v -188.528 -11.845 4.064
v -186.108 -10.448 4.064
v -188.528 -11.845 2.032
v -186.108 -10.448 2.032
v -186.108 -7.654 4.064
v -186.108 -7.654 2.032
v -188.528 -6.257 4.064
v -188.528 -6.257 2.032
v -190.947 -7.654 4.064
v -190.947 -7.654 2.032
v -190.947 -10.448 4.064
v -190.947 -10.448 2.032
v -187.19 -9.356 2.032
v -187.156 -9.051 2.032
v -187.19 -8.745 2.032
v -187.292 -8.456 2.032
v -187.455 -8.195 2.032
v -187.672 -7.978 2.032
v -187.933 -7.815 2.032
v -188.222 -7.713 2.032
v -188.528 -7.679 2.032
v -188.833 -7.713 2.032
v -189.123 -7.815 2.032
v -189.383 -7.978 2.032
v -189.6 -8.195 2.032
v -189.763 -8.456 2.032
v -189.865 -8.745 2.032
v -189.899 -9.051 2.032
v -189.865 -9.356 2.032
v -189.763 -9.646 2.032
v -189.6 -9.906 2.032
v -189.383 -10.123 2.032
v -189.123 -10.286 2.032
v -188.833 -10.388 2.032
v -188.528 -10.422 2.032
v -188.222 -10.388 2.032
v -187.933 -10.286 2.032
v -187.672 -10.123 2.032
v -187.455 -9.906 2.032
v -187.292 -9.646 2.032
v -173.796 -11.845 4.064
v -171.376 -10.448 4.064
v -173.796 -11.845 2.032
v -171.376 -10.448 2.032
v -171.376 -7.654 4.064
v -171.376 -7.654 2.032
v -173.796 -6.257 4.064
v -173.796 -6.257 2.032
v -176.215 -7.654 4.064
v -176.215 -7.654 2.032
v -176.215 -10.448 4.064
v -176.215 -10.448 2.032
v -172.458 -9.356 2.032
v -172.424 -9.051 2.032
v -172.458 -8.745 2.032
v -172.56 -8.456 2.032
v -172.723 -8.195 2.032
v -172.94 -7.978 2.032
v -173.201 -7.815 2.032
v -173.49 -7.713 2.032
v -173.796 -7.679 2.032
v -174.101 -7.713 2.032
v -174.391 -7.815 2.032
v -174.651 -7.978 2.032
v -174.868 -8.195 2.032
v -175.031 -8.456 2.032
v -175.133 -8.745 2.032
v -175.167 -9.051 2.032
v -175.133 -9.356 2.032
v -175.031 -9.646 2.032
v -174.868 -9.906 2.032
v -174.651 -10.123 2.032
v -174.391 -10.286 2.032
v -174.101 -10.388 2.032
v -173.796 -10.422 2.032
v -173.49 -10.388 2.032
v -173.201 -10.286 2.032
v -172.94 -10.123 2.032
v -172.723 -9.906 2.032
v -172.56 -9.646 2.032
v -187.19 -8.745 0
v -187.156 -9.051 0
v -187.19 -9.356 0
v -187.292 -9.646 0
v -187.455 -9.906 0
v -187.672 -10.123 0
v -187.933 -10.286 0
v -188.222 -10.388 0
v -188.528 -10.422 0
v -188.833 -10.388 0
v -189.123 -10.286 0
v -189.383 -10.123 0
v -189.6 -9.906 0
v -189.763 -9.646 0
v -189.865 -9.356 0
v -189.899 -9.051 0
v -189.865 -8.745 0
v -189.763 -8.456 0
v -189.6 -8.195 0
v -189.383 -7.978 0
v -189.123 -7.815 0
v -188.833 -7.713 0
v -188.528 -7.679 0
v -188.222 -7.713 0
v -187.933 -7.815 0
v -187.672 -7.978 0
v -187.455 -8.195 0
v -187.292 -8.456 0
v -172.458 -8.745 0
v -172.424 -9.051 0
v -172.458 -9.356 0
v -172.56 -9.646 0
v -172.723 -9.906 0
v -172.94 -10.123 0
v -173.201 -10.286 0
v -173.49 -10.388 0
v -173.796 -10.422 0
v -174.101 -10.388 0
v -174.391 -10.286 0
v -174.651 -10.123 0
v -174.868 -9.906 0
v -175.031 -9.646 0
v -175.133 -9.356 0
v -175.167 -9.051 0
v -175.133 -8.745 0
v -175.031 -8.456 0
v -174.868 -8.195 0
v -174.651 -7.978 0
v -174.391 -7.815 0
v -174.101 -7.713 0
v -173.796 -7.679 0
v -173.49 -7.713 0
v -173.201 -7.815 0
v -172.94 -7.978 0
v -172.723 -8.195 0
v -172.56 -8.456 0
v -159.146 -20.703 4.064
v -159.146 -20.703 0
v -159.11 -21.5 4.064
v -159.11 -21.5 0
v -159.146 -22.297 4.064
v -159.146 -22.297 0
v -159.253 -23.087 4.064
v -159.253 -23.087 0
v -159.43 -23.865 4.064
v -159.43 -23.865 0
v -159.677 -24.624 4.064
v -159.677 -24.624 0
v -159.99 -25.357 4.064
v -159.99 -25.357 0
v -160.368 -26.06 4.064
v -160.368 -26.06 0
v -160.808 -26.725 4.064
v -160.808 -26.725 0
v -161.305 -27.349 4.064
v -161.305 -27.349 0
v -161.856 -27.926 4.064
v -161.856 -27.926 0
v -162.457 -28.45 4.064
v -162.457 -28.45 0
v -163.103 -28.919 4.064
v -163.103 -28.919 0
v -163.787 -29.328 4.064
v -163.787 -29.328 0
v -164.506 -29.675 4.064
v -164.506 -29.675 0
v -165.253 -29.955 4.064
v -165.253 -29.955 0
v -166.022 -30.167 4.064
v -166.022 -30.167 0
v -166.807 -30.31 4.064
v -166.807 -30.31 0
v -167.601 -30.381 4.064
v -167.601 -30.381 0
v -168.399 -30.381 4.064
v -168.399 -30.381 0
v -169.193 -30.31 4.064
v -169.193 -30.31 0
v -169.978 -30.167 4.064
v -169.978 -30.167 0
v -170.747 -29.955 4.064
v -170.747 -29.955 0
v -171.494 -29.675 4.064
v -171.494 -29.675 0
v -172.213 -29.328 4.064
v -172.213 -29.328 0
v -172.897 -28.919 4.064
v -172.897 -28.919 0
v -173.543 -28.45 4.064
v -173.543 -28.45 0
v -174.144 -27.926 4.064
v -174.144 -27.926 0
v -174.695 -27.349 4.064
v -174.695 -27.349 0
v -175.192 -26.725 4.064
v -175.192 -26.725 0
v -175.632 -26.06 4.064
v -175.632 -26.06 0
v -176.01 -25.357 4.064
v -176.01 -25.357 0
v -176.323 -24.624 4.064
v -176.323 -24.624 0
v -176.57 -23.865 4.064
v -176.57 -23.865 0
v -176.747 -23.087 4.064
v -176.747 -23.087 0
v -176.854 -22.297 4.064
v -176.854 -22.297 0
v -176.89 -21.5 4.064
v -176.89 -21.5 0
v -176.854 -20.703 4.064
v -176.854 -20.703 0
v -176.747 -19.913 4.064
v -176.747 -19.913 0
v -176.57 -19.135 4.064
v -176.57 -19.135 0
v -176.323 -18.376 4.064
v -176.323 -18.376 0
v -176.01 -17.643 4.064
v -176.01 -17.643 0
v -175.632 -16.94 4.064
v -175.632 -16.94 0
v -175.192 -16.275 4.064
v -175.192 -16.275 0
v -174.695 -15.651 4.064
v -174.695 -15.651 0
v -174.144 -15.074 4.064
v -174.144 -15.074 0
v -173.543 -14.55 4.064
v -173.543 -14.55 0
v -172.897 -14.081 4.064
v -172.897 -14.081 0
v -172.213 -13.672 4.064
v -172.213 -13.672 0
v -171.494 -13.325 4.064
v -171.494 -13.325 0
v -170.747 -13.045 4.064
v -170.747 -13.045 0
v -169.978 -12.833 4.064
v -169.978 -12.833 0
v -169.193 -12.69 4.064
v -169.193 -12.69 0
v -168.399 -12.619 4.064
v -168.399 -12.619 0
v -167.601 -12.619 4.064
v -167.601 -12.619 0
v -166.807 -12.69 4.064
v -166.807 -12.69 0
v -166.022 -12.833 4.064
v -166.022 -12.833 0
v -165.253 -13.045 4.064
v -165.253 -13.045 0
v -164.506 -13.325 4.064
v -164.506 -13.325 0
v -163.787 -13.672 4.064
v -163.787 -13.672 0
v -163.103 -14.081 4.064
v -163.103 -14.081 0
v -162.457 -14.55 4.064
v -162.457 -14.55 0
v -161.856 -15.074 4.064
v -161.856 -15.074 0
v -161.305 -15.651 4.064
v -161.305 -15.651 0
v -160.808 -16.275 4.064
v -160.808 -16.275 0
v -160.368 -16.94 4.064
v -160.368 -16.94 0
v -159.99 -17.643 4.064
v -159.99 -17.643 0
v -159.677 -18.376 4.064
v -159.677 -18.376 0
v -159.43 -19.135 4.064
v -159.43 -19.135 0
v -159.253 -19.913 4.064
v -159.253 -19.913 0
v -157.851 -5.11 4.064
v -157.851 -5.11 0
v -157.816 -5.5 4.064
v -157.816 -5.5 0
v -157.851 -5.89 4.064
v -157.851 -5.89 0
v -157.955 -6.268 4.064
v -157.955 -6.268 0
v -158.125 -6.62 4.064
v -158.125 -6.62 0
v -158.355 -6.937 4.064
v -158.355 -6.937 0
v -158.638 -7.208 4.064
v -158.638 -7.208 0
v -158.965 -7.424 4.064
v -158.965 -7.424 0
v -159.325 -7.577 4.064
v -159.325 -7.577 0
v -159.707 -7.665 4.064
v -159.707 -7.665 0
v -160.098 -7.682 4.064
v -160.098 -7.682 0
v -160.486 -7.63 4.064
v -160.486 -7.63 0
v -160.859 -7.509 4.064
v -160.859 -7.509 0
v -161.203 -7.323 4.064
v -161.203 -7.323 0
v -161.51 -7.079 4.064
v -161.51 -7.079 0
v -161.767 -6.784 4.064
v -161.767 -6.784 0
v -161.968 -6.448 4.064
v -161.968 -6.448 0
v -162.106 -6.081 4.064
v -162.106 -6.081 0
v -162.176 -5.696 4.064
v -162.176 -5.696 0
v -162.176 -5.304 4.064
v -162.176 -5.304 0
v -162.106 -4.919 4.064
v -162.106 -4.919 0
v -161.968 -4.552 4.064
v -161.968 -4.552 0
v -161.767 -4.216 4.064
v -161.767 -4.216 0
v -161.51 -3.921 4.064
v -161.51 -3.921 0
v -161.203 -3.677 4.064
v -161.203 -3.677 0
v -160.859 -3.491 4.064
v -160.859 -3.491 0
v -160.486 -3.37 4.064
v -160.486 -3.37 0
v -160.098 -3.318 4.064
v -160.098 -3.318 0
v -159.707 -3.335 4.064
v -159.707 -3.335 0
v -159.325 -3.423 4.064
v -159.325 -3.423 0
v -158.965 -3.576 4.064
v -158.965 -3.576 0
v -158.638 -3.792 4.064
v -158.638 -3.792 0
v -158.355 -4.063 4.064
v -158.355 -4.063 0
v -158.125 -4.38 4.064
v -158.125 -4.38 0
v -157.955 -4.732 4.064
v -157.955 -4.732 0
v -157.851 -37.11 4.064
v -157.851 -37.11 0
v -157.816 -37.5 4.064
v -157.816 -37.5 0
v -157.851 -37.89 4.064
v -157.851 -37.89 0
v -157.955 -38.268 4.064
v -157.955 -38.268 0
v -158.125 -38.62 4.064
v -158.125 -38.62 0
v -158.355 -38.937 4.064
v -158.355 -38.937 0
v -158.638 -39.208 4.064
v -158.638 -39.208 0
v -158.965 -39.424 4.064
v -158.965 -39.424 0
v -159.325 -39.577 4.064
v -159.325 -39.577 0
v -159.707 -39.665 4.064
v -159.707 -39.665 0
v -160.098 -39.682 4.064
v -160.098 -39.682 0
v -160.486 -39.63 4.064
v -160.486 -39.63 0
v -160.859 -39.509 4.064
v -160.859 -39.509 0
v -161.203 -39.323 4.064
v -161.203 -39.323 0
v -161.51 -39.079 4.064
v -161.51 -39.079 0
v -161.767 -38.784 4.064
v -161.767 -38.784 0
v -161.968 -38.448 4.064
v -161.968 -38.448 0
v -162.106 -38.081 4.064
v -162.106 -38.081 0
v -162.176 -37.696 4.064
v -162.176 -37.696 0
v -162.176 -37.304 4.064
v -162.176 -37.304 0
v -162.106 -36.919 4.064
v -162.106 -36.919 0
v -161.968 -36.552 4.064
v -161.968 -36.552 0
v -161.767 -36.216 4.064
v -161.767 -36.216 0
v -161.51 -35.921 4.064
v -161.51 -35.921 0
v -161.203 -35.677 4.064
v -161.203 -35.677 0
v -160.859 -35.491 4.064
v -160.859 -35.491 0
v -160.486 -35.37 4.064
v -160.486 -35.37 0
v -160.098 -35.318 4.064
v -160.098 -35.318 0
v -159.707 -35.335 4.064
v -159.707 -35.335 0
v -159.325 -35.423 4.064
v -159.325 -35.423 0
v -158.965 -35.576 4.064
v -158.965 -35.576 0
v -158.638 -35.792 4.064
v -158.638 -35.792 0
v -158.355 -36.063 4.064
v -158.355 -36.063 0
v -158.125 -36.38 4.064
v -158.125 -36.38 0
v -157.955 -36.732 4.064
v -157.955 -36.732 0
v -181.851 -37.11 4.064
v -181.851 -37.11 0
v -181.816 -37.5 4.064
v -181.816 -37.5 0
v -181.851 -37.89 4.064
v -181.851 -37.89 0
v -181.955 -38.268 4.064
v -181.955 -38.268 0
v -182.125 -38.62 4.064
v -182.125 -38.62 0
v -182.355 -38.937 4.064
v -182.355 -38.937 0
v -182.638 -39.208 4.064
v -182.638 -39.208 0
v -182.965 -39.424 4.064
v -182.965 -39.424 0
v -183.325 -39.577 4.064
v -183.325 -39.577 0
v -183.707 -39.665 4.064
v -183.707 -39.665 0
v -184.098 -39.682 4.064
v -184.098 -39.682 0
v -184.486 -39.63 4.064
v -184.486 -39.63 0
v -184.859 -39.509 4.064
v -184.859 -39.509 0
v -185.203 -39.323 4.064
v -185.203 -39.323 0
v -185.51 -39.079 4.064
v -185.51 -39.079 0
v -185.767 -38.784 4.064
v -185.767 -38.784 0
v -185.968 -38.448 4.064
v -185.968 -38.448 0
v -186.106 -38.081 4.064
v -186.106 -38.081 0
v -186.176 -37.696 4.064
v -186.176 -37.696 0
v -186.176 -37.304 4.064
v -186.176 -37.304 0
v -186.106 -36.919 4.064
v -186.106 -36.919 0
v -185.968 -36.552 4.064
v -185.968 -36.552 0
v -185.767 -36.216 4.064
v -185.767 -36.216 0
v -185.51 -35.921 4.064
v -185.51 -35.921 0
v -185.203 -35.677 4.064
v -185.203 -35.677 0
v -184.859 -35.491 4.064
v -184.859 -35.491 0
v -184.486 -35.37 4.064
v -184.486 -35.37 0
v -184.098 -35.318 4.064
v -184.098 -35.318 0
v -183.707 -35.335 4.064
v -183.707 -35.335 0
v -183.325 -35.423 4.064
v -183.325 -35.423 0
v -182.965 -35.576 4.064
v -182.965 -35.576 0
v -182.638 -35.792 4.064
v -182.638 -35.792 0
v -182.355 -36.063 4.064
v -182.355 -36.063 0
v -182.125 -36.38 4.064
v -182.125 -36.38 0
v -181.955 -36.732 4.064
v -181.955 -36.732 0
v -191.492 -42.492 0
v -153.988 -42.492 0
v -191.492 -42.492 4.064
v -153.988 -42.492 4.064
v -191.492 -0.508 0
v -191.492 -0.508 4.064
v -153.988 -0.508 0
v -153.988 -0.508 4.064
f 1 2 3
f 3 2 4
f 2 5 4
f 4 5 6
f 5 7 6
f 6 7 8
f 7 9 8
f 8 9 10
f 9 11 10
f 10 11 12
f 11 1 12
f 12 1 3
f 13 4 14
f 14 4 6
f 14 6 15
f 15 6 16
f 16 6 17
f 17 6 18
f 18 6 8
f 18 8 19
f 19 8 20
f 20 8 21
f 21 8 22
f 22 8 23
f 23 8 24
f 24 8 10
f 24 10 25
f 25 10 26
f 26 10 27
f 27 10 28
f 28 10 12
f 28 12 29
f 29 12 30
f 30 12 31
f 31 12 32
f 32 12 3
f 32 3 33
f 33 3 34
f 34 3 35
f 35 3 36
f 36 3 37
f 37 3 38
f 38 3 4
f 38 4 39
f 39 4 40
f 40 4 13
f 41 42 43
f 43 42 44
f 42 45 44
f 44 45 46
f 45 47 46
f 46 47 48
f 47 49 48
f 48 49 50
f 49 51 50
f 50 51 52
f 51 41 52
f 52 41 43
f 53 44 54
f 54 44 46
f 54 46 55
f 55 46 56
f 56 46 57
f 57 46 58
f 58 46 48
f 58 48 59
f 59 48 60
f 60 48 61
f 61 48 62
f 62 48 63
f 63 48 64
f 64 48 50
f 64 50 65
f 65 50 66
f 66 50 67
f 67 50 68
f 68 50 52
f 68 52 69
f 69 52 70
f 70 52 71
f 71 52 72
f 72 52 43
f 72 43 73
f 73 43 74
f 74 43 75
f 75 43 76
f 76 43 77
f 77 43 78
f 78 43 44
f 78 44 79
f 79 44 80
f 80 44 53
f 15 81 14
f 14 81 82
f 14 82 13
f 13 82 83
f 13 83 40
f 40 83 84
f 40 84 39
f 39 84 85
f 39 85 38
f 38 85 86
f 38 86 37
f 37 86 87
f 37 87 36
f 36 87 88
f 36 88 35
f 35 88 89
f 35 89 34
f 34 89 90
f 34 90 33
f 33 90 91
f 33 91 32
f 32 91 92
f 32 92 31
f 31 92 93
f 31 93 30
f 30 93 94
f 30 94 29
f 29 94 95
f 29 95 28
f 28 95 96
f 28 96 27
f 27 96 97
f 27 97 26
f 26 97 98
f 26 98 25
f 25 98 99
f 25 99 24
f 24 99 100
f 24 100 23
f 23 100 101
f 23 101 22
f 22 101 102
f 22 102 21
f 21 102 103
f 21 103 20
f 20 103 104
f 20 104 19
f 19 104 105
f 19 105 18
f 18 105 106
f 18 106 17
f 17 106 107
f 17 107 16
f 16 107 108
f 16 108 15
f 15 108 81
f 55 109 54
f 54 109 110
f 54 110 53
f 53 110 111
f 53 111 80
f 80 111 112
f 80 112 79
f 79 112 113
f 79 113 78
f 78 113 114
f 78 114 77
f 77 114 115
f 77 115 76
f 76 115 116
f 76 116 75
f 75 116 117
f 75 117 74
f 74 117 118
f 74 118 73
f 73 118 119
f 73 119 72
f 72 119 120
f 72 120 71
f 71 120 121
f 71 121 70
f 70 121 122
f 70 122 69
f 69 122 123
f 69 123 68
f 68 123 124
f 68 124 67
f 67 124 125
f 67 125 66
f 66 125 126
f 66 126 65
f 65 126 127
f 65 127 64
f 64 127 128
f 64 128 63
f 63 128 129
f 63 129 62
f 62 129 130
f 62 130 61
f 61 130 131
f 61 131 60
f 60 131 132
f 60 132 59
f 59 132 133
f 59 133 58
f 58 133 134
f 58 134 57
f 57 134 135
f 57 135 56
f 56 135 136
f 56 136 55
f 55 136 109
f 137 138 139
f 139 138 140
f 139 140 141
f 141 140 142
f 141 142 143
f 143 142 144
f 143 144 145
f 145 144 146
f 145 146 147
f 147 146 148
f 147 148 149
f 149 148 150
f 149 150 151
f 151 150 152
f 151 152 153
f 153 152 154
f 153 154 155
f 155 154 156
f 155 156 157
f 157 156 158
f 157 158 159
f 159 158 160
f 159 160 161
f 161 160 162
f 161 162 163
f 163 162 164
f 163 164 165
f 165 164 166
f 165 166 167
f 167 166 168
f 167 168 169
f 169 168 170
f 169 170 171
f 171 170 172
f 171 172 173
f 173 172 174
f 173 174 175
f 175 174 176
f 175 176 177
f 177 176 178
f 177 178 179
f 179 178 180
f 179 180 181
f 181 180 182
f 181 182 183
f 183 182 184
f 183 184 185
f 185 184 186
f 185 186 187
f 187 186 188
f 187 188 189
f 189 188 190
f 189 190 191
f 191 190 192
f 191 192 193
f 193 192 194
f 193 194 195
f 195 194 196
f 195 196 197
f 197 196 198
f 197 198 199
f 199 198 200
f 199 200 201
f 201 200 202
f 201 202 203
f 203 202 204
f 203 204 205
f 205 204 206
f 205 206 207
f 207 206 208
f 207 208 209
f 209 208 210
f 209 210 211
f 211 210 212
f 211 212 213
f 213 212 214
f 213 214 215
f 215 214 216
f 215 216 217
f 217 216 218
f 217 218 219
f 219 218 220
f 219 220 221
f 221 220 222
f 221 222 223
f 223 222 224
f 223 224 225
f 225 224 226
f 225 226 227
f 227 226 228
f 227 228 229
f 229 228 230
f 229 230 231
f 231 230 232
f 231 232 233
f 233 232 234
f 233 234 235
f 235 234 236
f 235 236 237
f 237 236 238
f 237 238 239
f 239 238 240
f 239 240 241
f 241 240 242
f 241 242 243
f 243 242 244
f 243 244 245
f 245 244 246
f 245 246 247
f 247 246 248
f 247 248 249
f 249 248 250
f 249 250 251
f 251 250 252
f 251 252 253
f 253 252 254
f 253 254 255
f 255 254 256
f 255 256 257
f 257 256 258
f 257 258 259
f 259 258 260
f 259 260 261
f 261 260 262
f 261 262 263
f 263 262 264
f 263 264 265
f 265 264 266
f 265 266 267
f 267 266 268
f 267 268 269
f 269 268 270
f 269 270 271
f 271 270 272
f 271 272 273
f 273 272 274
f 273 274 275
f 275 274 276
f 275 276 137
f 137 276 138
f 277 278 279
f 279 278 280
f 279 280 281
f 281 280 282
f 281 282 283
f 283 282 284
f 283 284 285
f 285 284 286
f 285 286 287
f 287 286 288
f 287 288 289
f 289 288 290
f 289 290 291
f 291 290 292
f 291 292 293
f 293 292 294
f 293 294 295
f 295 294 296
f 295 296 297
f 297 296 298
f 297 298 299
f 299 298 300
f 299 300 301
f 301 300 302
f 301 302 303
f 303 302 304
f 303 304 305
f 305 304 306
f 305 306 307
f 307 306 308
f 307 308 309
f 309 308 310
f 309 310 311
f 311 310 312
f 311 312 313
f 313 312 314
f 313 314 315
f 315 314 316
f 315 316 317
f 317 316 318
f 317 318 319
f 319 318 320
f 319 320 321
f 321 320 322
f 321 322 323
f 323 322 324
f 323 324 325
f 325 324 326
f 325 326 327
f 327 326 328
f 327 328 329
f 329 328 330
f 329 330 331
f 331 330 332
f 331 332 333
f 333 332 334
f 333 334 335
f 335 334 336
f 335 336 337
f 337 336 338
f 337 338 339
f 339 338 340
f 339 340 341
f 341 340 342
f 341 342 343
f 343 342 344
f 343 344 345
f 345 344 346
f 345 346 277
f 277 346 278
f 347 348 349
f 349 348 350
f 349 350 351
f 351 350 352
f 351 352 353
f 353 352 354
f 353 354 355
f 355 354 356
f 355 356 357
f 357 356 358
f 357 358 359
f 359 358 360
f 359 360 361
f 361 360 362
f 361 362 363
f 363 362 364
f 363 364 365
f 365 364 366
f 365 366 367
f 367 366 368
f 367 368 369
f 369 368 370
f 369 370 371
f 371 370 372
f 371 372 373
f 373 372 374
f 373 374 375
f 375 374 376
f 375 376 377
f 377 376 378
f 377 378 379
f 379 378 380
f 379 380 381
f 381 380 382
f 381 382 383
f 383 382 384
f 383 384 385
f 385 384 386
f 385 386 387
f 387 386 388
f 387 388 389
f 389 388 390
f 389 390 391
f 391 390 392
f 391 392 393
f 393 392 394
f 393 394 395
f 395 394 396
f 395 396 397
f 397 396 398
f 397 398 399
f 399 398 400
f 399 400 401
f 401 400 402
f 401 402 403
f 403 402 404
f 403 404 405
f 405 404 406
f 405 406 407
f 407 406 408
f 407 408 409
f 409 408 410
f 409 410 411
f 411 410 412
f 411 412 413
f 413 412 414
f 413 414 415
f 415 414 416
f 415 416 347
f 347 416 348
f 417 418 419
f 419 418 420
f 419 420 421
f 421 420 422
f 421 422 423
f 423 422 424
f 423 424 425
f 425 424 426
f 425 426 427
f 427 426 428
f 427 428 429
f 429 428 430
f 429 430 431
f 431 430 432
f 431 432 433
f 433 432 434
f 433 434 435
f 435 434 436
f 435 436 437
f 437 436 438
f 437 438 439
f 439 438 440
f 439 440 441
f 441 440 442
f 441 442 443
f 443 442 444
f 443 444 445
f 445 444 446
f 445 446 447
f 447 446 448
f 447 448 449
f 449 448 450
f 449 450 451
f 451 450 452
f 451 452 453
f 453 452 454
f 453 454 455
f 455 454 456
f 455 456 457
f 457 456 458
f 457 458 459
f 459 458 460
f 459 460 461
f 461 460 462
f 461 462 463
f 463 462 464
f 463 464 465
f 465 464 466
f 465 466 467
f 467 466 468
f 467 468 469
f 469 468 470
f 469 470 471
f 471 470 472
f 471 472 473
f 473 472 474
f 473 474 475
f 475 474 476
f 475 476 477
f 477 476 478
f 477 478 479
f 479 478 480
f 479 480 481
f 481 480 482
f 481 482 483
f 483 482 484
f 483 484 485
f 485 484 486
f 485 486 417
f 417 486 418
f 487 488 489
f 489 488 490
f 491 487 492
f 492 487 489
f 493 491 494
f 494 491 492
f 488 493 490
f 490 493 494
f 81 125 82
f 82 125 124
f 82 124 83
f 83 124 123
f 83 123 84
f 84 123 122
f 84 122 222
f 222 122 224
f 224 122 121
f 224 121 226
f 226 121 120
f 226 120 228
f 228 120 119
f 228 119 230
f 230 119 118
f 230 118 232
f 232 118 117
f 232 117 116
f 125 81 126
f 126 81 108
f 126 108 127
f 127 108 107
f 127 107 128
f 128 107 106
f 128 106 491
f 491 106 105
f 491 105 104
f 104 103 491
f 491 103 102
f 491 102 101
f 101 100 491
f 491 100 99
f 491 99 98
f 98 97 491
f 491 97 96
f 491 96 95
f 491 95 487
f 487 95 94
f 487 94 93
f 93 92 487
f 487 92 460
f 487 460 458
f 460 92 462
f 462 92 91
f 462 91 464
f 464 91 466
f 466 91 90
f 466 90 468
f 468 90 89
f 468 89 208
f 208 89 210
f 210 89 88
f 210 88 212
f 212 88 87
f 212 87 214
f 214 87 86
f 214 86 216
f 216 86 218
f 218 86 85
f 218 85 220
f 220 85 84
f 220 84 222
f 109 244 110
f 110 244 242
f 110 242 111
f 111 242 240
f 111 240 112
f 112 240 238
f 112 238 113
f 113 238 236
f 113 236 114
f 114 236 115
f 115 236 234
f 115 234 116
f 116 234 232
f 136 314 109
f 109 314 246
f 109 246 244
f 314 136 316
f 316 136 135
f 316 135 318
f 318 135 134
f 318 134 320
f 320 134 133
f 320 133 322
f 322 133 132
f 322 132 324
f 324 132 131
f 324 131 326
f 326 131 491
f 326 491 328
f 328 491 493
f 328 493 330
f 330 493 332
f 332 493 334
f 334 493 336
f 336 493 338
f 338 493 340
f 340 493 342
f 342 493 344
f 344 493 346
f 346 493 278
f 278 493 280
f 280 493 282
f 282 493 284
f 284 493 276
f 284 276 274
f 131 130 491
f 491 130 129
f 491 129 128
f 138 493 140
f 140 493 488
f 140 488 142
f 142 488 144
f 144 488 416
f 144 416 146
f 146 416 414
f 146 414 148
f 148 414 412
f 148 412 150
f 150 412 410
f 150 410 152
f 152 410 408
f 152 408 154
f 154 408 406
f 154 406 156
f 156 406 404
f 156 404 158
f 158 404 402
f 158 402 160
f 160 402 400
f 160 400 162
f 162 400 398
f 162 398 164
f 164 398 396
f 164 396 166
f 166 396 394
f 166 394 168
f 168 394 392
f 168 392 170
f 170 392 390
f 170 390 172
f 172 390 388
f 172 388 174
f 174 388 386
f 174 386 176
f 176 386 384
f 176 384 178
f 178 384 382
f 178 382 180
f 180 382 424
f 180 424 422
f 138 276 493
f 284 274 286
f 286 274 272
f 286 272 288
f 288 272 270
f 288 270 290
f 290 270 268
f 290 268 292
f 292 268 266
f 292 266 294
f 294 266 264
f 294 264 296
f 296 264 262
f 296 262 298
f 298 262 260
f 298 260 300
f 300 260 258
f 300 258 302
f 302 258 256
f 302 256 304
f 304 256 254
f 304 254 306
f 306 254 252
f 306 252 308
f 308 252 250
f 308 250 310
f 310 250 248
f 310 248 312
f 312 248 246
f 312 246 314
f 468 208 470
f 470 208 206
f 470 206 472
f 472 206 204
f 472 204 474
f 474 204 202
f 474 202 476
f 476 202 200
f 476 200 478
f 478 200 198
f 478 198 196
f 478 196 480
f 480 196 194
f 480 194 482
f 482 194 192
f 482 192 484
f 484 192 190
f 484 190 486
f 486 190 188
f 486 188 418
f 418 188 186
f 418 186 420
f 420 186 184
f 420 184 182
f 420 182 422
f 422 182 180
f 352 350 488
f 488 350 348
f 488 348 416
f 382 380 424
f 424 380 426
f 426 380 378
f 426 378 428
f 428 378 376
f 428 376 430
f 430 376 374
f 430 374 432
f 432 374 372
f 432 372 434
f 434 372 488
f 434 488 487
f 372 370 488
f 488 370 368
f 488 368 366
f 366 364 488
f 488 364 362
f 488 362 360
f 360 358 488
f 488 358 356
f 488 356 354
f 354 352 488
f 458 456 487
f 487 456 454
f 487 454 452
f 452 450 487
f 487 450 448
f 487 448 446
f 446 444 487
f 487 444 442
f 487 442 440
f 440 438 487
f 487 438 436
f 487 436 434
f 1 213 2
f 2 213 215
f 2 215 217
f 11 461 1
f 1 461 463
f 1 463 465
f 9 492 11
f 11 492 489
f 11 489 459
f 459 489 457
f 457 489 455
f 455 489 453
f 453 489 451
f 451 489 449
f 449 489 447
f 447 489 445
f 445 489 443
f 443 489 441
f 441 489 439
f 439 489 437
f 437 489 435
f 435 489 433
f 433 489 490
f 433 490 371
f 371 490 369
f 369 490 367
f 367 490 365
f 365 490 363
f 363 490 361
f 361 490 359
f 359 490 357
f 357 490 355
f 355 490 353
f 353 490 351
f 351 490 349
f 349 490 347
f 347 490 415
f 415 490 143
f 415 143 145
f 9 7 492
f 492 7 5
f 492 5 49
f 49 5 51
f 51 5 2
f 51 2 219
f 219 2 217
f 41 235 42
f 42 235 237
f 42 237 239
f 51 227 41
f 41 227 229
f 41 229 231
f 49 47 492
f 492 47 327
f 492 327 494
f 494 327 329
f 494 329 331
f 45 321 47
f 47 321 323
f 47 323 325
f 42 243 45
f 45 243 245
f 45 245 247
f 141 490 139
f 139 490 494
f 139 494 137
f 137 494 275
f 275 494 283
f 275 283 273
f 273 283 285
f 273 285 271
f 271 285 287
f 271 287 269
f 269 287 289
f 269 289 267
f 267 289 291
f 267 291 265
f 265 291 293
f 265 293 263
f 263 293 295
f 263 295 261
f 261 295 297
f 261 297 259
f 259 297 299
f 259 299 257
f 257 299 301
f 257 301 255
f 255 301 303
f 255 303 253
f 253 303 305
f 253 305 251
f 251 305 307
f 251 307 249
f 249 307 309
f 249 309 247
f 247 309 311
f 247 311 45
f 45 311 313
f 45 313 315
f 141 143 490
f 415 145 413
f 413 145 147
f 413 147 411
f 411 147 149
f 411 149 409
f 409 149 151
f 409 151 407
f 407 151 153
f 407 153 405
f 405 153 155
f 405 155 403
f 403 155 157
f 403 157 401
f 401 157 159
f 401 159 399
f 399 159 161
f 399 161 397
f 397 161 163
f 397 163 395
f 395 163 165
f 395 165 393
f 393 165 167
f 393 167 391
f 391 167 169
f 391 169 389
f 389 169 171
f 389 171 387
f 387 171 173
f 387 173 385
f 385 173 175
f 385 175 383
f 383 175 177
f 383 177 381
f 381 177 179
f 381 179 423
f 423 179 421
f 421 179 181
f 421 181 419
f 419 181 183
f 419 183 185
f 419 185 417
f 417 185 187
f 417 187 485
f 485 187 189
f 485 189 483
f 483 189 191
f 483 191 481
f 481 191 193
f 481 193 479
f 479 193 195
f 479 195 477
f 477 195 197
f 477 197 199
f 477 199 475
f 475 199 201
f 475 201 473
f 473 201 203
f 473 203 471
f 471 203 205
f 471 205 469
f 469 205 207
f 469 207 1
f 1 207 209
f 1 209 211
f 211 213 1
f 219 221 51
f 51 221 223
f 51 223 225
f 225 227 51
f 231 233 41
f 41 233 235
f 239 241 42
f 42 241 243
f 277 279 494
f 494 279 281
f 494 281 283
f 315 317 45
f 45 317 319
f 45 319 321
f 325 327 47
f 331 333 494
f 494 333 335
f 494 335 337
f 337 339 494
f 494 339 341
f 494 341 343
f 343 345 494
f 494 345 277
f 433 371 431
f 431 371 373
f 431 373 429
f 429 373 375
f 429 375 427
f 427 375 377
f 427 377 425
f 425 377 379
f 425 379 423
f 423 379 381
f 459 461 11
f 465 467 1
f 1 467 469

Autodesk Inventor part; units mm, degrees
ref_plane "YZ Plane" through (0, 0, 0) normal (1, 0, 0) x (0, 1, 0)
ref_plane "XZ Plane" through (0, 0, 0) normal (0, 1, 0) x (-1, 0, 0)
ref_plane "XY Plane" through (0, 0, 0) normal (0, 0, 1) x (1, 0, 0)
ref_plane "Work Plane1" through (0, 0, 0) normal (0, 0, 1) x (1, 0, 0)
sketch "Sketch1" plane through (0, 0, 0) normal (0, 0, 1) x (1, 0, 0)
  line L0 (-192, 0) -> (-192, -43) construction
  line L1 (-192, -43) -> (0, -43) construction
  line L2 (-192, 0) -> (0, 0) construction
  line L3 (-153.9875, -0.508) -> (-153.9875, -42.492)
  line L4 (-153.9875, -42.492) -> (-191.492, -42.492)
  line L5 (-191.492, -42.492) -> (-191.492, -0.508)
  line L6 (-191.492, -0.508) -> (-153.9875, -0.508)
  circle A0 centre (-168, -21.5) radius 7.975 construction
  circle A1 centre (-168, -21.5) radius 8.89
  circle A2 centre (-184, -37.5) radius 2 construction
  circle A3 centre (-160, -37.5) radius 2 construction
  circle A4 centre (-160, -5.5) radius 2 construction
  circle A5 centre (-184, -37.5) radius 2.1844
  circle A6 centre (-160, -37.5) radius 2.1844
  circle A7 centre (-160, -5.5) radius 2.1844
extrude "Extrusion1" add sketch "Sketch1" along normal blind 4.064
sketch "Sketch2" plane through (0, 0, 4.064) normal (0, 0, 1) x (1, 0, 0)
  arc A0 (-188.6973, -7.9203) -> (-188.6973, -10.181) centre (-188.5276, -9.0507) ccw construction
  arc A1 (-173.6259, -10.181) -> (-173.6259, -7.9203) centre (-173.7956, -9.0507) ccw construction
  circle A2 centre (-188.5276, -9.0507) radius 1.3716
  circle A3 centre (-173.7956, -9.0507) radius 1.3716
  point P0 (0, 0)
  dimension "d7" = 2.7432
  dimension "d8" = 2.7432
extrude "Extrusion2" cut sketch "Sketch2" against normal through all
sketch "Sketch4" plane through (0, 0, 4.064) normal (0, 0, 1) x (1, 0, 0)
  circle A0 centre (-188.5276, -9.0507) radius 1.3716 construction
  circle A1 centre (-188.5276, -9.0507) radius 2.794 construction
  circle A2 centre (-173.7956, -9.0507) radius 1.3716 construction
  circle A3 centre (-173.7956, -9.0507) radius 2.794 construction
  line L0 (-188.5276, -11.8447) -> (-190.9473, -10.4477)
  line L1 (-190.9473, -10.4477) -> (-190.9473, -7.6537)
  line L2 (-190.9473, -7.6537) -> (-188.5276, -6.2567)
  line L3 (-188.5276, -6.2567) -> (-186.108, -7.6537)
  line L4 (-186.108, -7.6537) -> (-186.108, -10.4477)
  line L5 (-186.108, -10.4477) -> (-188.5276, -11.8447)
  line L6 (-173.7956, -11.8447) -> (-176.2153, -10.4477)
  line L7 (-176.2153, -10.4477) -> (-176.2153, -7.6537)
  line L8 (-176.2153, -7.6537) -> (-173.7956, -6.2567)
  line L9 (-173.7956, -6.2567) -> (-171.376, -7.6537)
  line L10 (-171.376, -7.6537) -> (-171.376, -10.4477)
  line L11 (-171.376, -10.4477) -> (-173.7956, -11.8447)
  point P0 (0, 0)
  dimension "d15" = 5.588
  dimension "d16" = 5.588
extrude "Extrusion4" cut sketch "Sketch4" against normal blind 2.032
properties part number "BallMountRight"
